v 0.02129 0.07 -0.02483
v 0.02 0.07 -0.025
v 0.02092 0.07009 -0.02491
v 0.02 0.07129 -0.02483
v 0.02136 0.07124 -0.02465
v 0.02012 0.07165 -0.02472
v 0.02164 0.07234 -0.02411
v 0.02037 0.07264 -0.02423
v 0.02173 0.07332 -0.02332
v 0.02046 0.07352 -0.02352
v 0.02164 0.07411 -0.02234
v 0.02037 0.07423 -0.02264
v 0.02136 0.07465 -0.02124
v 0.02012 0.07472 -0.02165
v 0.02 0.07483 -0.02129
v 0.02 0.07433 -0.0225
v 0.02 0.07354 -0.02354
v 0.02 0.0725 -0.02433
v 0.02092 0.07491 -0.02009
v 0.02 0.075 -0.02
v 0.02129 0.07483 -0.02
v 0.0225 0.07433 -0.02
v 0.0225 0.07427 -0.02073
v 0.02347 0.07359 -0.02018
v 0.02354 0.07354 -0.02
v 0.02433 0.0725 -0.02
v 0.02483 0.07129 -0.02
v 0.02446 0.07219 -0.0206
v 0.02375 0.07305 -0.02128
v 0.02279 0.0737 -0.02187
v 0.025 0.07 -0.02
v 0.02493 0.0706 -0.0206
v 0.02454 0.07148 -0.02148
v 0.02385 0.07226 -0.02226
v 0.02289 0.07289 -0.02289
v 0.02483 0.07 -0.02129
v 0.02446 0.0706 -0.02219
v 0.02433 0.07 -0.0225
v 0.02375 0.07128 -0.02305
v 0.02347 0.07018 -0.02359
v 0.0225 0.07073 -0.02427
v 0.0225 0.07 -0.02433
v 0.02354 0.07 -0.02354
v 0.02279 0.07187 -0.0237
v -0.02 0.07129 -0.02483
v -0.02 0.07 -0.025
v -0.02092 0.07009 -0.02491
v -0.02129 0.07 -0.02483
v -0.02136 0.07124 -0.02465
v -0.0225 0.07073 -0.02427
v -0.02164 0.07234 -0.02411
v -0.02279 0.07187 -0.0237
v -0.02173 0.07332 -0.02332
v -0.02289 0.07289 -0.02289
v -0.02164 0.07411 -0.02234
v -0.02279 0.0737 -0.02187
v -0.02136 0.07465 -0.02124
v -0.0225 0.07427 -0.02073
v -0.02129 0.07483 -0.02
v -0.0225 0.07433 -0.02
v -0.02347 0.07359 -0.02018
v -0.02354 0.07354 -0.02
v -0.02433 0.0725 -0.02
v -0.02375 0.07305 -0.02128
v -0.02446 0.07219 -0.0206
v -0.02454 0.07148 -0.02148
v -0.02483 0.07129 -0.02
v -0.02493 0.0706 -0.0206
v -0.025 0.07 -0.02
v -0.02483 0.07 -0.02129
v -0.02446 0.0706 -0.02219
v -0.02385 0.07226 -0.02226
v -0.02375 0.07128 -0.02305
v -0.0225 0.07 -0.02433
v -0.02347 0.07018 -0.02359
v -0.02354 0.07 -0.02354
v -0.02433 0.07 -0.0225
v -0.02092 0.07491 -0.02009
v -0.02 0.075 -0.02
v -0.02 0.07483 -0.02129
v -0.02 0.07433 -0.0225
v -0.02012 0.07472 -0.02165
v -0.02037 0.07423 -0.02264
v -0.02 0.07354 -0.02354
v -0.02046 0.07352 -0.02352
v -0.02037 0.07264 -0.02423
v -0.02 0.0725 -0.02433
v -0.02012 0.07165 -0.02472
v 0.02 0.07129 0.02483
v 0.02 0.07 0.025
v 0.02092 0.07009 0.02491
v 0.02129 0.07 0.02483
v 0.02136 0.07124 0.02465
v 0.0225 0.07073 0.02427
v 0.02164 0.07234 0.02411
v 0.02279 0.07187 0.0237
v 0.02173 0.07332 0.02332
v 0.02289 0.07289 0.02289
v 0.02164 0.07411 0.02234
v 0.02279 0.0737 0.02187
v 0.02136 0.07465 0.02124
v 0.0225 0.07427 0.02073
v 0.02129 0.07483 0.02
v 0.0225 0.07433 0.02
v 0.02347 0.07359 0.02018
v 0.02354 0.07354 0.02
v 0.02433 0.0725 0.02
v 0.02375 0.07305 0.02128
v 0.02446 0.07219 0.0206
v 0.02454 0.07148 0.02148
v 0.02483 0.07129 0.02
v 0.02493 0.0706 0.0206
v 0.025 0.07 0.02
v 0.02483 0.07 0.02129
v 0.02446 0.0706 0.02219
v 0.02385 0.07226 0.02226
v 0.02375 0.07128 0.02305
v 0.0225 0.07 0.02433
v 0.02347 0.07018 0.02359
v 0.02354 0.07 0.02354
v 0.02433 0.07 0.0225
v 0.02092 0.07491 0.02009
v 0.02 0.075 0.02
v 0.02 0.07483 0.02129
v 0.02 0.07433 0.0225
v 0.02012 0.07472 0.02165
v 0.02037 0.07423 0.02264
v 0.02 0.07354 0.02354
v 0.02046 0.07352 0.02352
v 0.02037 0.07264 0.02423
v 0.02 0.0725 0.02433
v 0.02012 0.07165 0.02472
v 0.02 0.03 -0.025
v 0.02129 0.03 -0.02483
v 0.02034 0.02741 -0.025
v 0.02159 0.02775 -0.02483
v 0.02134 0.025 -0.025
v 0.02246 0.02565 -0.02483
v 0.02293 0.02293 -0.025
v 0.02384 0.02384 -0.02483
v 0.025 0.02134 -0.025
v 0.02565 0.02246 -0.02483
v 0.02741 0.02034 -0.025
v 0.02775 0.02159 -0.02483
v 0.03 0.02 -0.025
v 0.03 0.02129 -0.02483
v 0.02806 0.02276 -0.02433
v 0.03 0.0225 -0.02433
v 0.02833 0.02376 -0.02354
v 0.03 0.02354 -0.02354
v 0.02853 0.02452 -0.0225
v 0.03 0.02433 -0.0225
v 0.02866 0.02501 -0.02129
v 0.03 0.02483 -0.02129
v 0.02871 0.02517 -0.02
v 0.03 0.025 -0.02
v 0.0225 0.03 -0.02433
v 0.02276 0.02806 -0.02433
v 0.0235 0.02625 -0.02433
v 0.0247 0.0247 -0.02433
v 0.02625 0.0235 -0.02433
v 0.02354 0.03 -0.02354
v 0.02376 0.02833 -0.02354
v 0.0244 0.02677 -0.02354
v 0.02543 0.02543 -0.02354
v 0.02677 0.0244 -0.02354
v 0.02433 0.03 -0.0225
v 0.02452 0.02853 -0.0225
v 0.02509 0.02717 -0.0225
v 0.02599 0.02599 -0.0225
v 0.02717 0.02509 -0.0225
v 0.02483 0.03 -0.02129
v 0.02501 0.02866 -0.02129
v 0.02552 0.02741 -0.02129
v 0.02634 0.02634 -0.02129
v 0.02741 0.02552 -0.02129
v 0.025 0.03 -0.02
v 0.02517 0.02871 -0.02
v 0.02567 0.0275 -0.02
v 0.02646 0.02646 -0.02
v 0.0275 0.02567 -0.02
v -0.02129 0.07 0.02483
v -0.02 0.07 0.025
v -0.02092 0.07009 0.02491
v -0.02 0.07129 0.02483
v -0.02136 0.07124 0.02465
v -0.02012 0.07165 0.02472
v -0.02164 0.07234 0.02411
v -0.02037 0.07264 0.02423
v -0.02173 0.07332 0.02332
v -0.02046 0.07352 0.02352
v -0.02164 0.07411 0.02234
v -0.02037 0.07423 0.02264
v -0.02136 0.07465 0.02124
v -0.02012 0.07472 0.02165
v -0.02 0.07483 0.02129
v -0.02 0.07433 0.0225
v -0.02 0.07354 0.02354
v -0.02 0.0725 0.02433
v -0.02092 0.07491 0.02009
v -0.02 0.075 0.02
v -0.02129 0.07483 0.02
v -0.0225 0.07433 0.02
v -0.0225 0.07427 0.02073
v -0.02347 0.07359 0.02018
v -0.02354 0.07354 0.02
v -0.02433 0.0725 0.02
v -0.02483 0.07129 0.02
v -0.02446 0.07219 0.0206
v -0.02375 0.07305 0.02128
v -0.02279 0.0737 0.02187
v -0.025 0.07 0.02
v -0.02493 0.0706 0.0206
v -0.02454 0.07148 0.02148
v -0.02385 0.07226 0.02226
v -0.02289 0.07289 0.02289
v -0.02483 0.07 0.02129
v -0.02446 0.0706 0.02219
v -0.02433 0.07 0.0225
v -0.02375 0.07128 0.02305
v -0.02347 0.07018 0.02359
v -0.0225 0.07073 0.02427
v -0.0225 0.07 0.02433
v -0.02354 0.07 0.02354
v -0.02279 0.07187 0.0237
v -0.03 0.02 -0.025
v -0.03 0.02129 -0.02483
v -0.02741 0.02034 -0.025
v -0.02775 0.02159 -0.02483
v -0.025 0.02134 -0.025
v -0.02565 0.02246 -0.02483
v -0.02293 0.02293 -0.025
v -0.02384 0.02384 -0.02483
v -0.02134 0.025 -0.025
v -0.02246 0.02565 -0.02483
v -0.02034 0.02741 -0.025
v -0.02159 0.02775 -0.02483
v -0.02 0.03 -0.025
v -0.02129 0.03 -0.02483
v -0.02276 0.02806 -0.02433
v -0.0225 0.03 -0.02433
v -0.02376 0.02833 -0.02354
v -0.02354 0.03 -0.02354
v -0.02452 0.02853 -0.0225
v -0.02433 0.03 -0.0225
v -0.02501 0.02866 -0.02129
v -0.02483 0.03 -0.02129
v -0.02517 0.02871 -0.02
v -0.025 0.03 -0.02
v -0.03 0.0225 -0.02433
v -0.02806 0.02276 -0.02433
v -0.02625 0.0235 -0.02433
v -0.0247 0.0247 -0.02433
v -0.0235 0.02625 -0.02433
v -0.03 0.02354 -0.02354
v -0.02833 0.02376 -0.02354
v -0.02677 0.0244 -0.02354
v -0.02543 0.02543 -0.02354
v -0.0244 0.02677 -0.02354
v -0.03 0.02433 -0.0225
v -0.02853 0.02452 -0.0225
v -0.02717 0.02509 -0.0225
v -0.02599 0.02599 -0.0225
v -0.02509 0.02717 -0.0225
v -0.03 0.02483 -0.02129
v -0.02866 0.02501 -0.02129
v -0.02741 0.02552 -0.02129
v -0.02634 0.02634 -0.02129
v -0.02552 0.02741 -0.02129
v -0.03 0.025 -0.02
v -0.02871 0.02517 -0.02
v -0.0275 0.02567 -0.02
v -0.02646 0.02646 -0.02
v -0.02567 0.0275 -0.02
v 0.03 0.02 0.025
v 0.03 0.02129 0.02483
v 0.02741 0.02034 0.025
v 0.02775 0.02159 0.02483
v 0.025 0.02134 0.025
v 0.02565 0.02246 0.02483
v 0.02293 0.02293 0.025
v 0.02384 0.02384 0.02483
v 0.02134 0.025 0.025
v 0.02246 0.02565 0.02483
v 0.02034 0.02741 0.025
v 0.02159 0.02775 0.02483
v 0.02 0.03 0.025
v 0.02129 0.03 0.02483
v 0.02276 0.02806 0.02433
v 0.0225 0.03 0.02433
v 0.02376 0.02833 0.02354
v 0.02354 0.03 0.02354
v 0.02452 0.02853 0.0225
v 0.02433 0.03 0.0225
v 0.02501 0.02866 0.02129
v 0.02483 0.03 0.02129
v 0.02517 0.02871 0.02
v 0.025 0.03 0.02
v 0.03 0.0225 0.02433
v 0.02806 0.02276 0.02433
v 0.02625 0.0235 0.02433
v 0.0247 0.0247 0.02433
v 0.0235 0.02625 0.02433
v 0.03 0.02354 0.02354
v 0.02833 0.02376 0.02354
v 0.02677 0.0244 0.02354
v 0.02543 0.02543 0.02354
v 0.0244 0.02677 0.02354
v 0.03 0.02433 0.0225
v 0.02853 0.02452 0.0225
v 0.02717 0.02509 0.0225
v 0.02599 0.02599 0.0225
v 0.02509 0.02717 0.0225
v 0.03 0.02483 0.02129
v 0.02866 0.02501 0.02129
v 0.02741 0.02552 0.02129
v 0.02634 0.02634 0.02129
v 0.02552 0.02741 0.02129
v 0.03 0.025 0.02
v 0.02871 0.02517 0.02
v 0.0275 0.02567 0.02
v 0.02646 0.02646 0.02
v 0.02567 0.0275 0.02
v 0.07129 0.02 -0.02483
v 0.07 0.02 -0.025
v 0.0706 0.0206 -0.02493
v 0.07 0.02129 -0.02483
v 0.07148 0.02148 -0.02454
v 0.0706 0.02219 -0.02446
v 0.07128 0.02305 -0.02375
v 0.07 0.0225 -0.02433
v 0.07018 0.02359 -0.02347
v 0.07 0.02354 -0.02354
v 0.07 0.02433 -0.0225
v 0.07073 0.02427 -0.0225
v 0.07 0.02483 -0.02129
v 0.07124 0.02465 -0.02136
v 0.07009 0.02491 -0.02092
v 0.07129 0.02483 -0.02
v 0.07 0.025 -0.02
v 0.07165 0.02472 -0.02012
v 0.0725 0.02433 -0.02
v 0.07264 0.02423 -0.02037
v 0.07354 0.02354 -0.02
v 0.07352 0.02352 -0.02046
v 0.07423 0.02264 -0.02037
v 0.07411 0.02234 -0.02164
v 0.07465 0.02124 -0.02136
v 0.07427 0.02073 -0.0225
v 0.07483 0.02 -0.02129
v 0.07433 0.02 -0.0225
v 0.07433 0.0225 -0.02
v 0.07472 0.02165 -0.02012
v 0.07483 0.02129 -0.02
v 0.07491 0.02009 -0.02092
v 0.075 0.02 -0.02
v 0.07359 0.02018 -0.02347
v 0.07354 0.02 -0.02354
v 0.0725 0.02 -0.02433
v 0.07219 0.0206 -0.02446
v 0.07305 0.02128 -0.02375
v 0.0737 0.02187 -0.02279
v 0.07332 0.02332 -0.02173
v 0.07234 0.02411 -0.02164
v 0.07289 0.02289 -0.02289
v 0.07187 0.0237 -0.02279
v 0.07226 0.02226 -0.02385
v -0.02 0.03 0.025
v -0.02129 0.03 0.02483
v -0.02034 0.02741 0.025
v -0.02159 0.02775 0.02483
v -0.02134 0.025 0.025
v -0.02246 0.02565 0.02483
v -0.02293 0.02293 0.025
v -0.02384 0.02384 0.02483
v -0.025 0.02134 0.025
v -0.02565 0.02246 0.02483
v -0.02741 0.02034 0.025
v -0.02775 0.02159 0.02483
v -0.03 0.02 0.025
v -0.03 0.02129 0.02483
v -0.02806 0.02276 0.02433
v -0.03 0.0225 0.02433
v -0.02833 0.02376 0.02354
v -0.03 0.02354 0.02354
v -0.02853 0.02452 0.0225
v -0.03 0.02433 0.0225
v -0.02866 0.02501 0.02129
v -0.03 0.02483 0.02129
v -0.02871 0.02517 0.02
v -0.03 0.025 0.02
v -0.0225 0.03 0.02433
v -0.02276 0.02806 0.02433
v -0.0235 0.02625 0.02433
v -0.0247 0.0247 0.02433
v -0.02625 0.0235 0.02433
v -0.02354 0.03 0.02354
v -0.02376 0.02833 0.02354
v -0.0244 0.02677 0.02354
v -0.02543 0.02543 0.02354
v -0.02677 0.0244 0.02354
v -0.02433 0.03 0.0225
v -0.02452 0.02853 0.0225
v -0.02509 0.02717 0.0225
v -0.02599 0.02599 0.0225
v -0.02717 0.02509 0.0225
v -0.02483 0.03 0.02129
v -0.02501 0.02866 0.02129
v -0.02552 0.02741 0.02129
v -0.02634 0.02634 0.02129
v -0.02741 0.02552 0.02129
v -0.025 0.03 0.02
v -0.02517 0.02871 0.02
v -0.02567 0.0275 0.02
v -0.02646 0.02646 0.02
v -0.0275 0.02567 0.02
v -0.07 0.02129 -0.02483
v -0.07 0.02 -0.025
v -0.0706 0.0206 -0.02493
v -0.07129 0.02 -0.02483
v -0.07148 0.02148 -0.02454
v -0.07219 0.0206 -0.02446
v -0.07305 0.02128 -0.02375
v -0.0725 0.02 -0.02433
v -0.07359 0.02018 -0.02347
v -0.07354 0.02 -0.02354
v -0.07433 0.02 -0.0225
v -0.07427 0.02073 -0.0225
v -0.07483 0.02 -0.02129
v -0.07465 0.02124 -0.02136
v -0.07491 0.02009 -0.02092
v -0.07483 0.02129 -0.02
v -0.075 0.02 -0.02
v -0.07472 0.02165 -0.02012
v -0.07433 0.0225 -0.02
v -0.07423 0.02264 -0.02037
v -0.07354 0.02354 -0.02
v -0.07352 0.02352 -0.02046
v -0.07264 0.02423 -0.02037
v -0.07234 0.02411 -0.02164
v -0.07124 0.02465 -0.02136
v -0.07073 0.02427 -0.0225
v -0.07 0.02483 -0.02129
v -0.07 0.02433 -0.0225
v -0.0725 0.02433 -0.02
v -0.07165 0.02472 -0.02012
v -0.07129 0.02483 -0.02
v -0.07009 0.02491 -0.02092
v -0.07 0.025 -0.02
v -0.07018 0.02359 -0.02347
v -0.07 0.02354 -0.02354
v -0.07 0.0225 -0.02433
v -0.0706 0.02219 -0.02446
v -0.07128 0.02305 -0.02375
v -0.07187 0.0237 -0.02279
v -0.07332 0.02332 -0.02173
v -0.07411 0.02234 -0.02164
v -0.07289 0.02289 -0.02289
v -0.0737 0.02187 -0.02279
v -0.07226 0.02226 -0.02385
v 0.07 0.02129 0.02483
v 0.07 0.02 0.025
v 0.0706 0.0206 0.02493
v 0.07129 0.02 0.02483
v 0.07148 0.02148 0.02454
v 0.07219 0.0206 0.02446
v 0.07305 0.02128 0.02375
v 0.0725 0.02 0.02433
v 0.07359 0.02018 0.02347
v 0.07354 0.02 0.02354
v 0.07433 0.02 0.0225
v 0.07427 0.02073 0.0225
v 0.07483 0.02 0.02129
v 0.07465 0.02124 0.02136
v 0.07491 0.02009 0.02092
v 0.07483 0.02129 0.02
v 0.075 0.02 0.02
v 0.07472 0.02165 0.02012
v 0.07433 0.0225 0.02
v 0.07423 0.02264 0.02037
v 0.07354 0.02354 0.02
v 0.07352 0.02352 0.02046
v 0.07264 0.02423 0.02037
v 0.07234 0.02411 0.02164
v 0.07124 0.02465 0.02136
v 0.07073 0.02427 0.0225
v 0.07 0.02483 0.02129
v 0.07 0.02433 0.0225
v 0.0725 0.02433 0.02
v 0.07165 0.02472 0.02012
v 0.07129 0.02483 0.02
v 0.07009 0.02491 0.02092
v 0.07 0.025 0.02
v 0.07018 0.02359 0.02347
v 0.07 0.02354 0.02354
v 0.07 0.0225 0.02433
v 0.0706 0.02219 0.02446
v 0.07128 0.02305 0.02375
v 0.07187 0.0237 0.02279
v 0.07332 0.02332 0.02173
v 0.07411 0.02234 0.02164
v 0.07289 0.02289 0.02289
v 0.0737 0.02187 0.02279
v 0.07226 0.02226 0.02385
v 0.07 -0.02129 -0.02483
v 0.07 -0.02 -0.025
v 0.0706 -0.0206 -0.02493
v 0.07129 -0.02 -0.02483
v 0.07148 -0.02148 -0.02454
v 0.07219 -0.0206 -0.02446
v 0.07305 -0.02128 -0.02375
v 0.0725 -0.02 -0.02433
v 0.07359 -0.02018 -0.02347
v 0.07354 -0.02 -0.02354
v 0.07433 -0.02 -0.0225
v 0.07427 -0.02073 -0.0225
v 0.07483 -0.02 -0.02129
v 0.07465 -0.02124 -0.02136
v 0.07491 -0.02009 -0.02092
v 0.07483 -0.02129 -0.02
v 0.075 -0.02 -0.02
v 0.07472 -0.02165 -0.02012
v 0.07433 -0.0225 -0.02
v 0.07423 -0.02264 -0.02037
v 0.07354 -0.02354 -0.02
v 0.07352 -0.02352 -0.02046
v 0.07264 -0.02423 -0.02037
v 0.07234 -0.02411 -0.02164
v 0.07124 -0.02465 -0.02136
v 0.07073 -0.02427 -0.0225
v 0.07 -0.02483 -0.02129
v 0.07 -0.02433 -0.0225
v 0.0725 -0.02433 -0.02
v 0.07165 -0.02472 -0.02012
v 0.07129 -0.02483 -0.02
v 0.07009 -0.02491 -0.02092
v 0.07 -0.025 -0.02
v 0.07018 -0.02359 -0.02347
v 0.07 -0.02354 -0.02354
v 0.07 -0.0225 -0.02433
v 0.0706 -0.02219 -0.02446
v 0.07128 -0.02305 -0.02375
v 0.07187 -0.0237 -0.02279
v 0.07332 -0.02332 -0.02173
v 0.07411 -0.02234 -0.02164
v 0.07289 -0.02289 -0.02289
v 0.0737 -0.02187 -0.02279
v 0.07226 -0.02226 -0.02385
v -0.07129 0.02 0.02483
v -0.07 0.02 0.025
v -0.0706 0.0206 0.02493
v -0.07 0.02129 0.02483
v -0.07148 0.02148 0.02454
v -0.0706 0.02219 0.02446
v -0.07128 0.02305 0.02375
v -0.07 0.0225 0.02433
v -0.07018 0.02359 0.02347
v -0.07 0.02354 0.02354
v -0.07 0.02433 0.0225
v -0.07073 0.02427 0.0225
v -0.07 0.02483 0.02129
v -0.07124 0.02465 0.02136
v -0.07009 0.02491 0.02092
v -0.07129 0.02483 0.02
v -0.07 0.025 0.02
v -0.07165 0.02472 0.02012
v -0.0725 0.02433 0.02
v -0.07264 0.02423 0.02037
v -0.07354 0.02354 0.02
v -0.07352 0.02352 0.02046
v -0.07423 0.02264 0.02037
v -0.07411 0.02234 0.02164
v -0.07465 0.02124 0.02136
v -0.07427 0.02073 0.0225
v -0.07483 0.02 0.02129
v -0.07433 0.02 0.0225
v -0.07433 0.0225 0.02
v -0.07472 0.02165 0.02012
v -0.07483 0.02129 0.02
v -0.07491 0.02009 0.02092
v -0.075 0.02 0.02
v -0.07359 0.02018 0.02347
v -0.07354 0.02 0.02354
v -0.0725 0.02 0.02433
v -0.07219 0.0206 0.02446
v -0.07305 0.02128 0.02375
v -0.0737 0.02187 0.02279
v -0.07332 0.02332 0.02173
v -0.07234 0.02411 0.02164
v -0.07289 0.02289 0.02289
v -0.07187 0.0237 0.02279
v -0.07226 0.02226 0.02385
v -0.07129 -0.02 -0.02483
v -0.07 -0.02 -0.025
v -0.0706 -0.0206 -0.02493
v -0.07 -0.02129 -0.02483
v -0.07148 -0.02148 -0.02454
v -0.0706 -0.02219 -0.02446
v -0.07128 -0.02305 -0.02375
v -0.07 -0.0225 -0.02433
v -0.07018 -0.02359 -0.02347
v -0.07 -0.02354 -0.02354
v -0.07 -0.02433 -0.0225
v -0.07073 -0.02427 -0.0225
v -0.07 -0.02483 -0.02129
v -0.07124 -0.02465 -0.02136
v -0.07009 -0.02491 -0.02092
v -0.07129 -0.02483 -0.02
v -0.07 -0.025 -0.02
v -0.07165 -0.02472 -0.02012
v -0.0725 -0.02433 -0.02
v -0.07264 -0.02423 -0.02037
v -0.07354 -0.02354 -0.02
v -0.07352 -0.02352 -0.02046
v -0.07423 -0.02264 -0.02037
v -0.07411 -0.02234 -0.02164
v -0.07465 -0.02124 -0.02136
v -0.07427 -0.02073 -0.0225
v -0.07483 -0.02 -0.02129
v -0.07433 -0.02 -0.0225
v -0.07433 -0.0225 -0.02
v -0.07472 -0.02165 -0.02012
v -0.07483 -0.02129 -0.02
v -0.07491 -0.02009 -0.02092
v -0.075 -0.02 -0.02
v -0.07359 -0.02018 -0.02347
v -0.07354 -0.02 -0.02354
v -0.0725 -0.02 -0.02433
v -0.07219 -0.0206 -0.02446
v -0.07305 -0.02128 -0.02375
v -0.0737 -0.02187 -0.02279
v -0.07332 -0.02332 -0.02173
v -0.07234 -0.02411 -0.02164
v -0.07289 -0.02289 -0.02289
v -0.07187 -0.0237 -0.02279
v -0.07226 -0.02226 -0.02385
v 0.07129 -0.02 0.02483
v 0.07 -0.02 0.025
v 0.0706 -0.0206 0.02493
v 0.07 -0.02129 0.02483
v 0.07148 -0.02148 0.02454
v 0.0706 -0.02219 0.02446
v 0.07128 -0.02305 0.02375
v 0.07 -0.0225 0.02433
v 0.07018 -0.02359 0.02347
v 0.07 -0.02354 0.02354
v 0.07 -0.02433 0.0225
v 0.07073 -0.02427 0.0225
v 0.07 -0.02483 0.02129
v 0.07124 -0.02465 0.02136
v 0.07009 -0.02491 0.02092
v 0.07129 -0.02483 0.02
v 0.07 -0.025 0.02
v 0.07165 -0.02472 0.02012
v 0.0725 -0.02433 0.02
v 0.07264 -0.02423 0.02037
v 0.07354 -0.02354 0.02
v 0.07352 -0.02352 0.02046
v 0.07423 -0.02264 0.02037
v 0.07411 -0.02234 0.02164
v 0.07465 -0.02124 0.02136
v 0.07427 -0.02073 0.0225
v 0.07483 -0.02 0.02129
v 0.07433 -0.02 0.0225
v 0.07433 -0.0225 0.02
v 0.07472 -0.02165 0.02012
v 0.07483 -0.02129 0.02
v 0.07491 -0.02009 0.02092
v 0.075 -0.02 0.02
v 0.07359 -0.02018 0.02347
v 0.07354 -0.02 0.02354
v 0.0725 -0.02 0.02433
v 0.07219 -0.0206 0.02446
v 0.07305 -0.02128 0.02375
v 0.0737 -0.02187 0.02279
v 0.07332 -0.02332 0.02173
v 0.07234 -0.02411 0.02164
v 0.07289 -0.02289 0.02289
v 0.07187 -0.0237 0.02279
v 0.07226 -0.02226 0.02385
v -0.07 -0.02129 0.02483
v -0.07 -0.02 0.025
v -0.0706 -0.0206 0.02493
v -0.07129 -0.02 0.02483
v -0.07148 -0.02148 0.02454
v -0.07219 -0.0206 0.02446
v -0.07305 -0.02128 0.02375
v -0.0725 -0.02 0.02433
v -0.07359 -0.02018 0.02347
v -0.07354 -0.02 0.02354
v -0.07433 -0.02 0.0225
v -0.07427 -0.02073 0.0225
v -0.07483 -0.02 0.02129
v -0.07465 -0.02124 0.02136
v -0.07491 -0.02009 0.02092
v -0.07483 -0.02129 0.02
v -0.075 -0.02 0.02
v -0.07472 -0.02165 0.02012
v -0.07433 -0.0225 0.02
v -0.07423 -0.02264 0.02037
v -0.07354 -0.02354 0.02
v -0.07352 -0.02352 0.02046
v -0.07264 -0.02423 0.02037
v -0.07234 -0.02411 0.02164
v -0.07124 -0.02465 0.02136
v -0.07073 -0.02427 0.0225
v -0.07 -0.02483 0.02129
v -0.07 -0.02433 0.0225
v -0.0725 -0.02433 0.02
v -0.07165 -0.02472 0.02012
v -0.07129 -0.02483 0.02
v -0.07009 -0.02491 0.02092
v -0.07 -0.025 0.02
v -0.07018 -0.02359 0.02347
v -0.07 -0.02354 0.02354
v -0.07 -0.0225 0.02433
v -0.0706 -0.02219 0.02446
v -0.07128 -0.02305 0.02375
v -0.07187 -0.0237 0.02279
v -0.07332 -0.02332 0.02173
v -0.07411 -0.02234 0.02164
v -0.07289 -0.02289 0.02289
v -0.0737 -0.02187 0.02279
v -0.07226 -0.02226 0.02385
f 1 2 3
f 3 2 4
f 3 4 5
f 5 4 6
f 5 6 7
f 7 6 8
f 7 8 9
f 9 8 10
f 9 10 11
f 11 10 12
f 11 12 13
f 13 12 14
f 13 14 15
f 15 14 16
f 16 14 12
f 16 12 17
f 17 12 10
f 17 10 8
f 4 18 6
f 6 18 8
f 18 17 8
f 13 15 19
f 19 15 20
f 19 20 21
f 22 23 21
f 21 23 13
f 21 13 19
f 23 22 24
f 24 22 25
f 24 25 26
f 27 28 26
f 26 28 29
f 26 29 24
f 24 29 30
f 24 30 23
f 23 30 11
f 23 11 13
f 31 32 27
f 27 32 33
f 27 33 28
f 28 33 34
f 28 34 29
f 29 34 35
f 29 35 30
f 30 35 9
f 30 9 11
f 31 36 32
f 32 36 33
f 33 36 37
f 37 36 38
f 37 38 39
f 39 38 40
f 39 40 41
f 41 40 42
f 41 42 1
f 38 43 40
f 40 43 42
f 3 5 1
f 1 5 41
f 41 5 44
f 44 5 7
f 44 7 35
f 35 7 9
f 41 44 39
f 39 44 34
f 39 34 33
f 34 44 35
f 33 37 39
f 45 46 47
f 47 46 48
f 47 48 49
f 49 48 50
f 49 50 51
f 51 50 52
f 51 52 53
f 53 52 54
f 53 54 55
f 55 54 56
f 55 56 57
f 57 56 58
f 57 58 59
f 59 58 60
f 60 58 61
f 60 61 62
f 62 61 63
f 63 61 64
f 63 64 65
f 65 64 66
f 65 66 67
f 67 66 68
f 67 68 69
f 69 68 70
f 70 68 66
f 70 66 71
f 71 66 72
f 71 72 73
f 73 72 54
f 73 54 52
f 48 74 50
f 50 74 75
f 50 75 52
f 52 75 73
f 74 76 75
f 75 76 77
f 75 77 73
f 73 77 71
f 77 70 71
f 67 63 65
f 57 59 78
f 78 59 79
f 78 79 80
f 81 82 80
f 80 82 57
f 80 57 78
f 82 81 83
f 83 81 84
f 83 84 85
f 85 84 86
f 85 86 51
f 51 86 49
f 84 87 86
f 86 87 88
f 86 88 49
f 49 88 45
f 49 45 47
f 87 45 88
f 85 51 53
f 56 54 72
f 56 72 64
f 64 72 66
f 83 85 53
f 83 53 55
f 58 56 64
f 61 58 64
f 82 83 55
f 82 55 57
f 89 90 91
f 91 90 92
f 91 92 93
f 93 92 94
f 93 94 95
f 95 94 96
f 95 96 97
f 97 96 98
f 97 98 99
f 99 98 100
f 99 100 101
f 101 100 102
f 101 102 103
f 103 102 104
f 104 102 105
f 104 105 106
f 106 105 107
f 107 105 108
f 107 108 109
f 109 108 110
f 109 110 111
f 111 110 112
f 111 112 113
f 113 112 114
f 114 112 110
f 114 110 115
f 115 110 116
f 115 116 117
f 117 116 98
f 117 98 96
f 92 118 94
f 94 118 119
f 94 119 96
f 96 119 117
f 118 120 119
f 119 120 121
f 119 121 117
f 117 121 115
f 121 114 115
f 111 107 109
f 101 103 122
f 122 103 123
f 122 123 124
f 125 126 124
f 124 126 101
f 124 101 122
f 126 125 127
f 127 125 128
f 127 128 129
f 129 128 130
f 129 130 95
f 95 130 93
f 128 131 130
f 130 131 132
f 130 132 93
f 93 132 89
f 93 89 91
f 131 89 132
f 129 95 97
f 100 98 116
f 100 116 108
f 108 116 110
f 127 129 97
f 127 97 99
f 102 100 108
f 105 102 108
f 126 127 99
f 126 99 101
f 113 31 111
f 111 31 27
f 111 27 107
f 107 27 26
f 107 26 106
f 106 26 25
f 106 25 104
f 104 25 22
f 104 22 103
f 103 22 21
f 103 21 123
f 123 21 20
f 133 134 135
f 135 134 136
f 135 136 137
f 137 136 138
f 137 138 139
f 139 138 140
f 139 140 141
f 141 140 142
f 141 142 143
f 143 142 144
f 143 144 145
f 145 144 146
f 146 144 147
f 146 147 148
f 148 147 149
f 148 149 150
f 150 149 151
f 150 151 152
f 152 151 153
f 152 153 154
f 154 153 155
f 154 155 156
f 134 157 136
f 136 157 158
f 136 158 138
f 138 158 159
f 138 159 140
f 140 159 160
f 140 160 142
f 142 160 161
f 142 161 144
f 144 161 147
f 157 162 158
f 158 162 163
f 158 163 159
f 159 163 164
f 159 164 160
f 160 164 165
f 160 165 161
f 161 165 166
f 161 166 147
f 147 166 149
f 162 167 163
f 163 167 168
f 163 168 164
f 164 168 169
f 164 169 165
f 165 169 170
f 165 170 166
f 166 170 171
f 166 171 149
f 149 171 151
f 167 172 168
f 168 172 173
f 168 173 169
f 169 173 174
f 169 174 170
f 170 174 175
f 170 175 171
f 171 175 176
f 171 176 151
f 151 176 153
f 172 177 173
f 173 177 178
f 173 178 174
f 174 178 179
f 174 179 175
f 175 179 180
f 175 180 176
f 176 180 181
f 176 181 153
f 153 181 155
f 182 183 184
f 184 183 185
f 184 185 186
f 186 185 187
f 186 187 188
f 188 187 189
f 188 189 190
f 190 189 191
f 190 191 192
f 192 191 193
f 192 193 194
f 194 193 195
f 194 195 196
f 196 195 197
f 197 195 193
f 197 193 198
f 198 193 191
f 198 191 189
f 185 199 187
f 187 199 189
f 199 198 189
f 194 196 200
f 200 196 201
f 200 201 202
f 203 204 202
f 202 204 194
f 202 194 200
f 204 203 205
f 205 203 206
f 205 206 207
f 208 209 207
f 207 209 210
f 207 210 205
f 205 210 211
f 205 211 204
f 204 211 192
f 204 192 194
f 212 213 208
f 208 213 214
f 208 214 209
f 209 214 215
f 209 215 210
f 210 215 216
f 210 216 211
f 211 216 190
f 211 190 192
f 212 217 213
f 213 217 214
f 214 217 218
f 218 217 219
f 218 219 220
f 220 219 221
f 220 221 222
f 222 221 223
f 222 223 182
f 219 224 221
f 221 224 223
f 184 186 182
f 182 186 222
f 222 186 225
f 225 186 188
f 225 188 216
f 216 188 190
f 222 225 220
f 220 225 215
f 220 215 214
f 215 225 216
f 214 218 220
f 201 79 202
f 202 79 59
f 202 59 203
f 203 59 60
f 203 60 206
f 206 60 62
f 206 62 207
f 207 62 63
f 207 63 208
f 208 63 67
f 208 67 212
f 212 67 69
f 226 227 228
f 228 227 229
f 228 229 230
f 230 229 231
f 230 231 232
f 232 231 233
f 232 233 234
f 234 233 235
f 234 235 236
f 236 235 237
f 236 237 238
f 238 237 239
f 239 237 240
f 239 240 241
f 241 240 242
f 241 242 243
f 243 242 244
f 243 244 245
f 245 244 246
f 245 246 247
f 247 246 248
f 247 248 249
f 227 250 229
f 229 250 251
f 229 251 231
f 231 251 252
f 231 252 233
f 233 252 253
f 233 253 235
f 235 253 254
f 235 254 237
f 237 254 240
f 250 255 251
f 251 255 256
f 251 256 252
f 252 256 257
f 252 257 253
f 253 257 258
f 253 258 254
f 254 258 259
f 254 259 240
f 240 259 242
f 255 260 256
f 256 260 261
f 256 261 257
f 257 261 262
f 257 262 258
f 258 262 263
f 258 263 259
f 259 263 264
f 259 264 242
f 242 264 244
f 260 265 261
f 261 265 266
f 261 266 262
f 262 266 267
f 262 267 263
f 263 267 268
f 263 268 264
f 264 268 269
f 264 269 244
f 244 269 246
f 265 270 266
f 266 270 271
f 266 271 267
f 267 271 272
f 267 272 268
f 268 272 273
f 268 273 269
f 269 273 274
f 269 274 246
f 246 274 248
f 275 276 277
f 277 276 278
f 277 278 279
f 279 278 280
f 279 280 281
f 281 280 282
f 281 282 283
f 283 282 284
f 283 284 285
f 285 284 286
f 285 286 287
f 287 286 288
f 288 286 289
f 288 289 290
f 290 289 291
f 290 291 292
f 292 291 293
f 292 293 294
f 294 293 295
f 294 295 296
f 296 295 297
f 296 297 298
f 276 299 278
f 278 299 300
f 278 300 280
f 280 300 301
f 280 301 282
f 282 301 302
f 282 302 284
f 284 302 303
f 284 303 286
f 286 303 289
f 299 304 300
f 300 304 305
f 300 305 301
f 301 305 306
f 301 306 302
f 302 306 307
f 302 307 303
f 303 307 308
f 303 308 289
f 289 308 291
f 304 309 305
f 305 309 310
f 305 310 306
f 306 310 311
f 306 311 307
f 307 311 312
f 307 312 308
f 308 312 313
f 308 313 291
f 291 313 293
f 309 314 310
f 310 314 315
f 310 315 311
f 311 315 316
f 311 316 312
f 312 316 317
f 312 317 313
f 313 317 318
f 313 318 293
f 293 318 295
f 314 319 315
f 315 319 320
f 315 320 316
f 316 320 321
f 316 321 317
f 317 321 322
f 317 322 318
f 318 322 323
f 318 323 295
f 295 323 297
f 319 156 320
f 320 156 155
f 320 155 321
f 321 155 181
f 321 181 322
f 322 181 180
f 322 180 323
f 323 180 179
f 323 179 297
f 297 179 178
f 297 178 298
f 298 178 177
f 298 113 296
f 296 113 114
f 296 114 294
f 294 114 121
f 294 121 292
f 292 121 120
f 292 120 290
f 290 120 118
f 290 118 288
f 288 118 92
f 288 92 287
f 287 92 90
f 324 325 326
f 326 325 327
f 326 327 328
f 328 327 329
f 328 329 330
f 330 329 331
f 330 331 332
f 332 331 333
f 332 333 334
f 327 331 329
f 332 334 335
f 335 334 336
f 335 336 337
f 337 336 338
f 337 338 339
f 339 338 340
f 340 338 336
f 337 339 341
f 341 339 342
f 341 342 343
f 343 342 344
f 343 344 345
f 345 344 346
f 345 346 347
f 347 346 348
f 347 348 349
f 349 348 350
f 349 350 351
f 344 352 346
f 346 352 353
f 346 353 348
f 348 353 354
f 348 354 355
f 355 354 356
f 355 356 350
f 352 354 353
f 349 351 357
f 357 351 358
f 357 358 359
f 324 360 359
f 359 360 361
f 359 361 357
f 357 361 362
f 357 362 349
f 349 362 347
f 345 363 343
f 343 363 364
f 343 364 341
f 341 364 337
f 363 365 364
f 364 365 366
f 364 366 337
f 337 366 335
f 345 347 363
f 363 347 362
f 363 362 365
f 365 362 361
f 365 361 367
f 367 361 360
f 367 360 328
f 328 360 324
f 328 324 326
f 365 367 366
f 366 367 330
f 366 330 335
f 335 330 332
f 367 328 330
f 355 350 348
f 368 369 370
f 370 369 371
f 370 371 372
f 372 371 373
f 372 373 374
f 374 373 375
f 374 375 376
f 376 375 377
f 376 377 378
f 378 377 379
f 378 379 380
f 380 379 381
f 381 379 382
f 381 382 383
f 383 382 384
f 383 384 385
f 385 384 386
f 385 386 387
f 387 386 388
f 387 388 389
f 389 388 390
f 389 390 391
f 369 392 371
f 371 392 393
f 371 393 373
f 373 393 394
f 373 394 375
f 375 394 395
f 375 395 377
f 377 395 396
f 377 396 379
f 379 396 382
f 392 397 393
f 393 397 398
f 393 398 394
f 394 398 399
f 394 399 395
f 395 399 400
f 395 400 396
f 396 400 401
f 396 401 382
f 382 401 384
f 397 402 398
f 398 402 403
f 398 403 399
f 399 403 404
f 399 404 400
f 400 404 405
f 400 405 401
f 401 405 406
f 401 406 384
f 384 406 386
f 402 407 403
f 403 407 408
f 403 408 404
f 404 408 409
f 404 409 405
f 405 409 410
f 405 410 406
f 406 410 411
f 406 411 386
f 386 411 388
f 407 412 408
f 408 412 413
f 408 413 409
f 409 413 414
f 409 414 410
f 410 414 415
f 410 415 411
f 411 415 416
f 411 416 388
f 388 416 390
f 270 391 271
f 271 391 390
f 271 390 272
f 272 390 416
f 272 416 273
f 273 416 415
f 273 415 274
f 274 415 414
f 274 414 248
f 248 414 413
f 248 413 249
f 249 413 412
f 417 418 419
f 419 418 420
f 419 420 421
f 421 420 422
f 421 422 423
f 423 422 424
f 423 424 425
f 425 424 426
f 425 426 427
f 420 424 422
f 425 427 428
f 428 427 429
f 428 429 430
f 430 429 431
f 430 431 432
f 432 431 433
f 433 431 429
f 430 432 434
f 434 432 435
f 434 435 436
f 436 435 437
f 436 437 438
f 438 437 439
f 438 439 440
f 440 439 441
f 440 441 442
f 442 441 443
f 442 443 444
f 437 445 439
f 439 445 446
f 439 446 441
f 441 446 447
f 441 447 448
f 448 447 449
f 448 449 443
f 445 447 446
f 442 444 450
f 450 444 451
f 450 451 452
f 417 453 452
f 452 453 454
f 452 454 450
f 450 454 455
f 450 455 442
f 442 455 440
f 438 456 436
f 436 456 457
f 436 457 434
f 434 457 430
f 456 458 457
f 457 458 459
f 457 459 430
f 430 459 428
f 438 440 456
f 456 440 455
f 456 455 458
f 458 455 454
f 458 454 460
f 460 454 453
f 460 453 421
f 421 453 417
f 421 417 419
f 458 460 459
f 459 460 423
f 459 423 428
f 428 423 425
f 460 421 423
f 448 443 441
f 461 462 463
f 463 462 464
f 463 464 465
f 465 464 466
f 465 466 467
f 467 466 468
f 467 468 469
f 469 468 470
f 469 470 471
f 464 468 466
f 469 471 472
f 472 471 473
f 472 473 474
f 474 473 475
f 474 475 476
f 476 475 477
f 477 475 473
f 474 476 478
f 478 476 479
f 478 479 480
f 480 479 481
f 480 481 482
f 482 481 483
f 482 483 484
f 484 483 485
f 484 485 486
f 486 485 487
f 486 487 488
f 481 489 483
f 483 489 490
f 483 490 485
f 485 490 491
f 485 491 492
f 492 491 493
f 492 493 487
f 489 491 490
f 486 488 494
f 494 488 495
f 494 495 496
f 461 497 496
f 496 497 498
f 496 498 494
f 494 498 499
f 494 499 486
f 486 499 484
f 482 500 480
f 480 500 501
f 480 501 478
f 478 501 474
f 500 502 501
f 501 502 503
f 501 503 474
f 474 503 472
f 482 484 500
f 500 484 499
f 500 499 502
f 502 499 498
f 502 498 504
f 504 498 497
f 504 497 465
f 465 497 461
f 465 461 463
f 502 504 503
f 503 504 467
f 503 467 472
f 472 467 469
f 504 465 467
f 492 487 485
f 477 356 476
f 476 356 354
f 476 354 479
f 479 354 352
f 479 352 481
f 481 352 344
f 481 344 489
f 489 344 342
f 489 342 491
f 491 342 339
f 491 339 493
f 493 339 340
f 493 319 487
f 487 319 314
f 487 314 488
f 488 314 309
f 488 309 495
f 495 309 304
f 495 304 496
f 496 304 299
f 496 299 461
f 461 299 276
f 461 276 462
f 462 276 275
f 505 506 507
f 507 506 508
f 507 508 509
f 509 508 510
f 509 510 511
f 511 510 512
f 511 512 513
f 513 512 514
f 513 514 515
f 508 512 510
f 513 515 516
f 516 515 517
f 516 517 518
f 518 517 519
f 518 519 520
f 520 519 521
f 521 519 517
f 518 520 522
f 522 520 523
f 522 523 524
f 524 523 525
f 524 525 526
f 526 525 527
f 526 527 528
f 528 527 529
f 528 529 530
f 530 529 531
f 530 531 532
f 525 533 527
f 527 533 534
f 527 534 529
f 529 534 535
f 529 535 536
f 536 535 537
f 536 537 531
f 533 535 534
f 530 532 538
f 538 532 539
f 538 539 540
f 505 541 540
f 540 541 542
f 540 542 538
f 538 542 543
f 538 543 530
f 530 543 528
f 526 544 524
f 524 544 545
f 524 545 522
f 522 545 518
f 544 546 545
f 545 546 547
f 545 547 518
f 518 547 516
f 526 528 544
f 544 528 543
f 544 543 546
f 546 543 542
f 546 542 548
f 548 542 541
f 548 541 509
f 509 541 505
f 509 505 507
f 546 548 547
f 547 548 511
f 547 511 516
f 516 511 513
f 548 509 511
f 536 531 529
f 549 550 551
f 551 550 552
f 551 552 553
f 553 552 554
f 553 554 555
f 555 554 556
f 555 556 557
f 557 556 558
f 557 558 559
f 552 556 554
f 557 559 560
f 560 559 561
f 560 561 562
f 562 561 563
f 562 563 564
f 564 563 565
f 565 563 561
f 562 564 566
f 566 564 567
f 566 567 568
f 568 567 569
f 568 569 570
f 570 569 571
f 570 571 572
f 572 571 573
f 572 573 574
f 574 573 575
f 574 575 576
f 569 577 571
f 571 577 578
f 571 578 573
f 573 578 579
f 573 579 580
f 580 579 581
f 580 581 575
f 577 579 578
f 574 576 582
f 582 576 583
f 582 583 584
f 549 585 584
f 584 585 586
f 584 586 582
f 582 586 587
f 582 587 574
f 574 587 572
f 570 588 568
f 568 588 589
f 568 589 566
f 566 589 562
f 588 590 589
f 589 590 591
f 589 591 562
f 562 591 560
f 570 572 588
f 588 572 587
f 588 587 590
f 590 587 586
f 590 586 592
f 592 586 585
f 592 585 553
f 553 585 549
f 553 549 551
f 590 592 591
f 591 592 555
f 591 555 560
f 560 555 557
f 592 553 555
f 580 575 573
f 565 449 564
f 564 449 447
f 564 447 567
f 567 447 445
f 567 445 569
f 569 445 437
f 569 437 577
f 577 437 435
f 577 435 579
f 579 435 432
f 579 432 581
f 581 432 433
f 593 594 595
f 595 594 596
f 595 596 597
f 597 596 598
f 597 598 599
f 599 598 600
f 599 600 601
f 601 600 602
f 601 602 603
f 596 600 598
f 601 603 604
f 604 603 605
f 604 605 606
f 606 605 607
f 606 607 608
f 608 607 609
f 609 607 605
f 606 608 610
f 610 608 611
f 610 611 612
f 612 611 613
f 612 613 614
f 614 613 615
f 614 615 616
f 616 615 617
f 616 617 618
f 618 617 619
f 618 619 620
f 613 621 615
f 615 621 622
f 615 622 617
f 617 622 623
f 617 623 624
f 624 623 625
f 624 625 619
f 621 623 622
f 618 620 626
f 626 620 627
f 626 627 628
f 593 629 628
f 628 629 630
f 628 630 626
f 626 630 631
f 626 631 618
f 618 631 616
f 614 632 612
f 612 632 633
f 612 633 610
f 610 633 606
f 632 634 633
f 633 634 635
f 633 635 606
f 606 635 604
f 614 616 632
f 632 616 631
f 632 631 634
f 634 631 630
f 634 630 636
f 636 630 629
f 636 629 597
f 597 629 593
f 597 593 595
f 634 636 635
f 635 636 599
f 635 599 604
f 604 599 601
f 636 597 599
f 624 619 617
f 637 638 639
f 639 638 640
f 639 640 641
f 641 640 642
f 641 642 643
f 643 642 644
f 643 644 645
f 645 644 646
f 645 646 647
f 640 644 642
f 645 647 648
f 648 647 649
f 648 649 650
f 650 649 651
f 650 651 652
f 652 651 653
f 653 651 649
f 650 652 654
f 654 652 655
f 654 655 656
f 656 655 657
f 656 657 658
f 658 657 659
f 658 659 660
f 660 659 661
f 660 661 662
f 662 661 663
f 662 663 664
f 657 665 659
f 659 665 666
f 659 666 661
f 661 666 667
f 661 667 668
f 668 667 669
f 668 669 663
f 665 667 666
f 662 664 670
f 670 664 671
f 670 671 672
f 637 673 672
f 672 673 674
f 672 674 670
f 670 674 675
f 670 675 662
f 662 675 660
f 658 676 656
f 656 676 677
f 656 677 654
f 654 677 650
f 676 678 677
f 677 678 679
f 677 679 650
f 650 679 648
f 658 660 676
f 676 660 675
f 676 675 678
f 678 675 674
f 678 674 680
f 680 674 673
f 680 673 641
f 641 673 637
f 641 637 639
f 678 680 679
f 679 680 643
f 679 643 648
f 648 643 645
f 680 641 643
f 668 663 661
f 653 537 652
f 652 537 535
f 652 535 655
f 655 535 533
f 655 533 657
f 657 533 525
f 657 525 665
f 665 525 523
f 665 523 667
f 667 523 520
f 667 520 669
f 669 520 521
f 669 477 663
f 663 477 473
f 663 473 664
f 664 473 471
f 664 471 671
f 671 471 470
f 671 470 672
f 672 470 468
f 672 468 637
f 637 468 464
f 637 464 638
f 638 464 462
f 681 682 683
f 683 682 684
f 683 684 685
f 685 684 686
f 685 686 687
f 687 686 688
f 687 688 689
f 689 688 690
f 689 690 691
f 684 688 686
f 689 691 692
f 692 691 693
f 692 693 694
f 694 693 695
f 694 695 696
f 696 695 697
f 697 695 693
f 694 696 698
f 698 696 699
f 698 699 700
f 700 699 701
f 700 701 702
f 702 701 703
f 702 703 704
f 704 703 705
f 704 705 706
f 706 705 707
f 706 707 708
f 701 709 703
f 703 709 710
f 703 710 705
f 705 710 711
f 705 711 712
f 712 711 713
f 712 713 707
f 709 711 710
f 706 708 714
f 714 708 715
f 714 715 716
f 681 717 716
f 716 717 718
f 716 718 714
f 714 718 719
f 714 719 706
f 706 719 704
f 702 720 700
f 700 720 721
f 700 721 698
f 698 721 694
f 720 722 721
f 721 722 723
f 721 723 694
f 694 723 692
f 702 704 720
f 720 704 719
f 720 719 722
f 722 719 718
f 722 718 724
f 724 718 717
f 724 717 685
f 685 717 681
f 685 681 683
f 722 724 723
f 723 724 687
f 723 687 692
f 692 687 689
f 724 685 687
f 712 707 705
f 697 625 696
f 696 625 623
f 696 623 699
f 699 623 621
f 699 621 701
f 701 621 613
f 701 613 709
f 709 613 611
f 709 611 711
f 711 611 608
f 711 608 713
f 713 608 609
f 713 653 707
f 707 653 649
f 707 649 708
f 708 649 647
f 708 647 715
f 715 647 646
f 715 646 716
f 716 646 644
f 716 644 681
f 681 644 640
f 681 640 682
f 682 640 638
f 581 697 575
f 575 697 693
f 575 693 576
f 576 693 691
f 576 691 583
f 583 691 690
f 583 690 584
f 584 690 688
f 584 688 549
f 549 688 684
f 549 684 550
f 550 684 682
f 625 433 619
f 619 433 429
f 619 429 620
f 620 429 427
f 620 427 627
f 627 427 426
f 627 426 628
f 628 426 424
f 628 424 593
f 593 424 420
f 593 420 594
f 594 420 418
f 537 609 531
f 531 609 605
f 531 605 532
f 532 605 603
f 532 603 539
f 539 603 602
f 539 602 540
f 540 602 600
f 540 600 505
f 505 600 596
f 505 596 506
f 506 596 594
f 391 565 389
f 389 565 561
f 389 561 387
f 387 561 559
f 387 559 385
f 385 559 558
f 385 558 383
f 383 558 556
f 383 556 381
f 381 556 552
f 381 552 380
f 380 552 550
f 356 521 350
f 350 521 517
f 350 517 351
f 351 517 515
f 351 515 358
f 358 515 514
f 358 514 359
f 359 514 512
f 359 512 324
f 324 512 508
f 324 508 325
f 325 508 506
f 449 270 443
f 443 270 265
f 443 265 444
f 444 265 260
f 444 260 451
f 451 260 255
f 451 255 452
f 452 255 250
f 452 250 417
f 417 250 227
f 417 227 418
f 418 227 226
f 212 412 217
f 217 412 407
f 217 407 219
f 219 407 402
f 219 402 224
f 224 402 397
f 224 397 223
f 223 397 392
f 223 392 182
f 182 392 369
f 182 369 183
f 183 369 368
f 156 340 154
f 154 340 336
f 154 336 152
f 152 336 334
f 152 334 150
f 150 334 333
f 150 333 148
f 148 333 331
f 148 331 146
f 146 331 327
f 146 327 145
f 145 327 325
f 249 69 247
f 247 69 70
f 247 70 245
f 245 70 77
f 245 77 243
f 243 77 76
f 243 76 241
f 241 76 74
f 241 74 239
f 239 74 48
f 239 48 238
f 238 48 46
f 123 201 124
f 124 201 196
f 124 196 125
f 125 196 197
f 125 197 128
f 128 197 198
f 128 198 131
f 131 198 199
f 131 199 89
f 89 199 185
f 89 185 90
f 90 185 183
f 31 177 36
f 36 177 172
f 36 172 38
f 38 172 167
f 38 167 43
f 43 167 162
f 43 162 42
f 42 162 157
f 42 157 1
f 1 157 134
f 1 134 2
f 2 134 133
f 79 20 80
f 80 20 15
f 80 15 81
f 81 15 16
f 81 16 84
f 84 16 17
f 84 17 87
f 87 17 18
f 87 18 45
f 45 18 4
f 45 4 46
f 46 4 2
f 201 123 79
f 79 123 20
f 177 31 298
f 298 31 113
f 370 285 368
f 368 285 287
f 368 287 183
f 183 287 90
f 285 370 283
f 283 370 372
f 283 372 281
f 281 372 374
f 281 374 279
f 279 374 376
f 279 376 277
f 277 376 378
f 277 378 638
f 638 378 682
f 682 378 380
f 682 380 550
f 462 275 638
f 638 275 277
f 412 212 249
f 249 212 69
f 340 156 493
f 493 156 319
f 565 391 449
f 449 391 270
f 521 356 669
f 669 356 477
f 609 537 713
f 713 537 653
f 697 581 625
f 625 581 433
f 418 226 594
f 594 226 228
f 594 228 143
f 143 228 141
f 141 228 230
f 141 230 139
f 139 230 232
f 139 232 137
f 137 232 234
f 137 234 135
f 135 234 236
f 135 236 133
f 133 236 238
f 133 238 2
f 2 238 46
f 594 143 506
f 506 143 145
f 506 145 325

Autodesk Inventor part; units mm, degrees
ref_plane "YZ Plane" through (0, 0, 0) normal (1, 0, 0) x (0, 1, 0)
ref_plane "XZ Plane" through (0, 0, 0) normal (0, 1, 0) x (-1, 0, 0)
ref_plane "XY Plane" through (0, 0, 0) normal (0, 0, 1) x (1, 0, 0)
sketch "Náčrt1" plane through (0, 0, 0) normal (0, 0, 1) x (1, 0, 0)
  line L0 (0, 0) -> (-0.025, 0) construction
  line L1 (-0.025, 0) -> (-0.025, 0.025) construction
  line L2 (-0.025, 0.025) -> (-0.025, 0.075)
  line L3 (-0.025, 0.075) -> (0.025, 0.075)
  line L4 (0.025, 0.075) -> (0.025, 0.025)
  line L5 (0.025, 0.025) -> (0.075, 0.025)
  line L6 (0.075, 0.025) -> (0.075, -0.025)
  line L7 (0.075, -0.025) -> (-0.075, -0.025)
  line L8 (-0.075, -0.025) -> (-0.075, 0.025)
  line L9 (-0.075, 0.025) -> (-0.025, 0.025)
  dimension "d0" = 0.025
  dimension "d1" = 0.025
  dimension "d2" = 90
  dimension "d3" = 0.05
  dimension "d4" = 0.05
  dimension "d5" = 0.05
  dimension "d6" = 0.05
  dimension "d7" = 0.05
  dimension "d8" = 0.15
  dimension "d9" = 0.05
extrude "Vysunutí1" add sketch "Náčrt1" along normal mid plane 0.05
fillet "Zaoblení1" radius 0.005 24 edges at (0, -0.025, 0.025) (-0.075, -0.025, 0) (0, -0.025, -0.025) (0.075, -0.025, 0) (0.075, 0, 0.025) (0.075, 0, -0.025) (0.075, 0.025, 0) (-0.075, 0, 0.025) (0.05, 0.025, 0.025) (0.025, 0.05, 0.025) (-0.05, 0.025, 0.025) (-0.025, 0.05, 0.025) (0.05, 0.025, -0.025) (0.025, 0.025, 0) (0.025, 0.05, -0.025) (0.025, 0.075, 0) (0, 0.075, -0.025) (0, 0.075, 0.025) (-0.025, 0.075, 0) (-0.025, 0.05, -0.025) (-0.05, 0.025, -0.025) (-0.075, 0.025, 0) (-0.075, 0, -0.025) (-0.025, 0.025, 0)
properties part number "tetris_t"
